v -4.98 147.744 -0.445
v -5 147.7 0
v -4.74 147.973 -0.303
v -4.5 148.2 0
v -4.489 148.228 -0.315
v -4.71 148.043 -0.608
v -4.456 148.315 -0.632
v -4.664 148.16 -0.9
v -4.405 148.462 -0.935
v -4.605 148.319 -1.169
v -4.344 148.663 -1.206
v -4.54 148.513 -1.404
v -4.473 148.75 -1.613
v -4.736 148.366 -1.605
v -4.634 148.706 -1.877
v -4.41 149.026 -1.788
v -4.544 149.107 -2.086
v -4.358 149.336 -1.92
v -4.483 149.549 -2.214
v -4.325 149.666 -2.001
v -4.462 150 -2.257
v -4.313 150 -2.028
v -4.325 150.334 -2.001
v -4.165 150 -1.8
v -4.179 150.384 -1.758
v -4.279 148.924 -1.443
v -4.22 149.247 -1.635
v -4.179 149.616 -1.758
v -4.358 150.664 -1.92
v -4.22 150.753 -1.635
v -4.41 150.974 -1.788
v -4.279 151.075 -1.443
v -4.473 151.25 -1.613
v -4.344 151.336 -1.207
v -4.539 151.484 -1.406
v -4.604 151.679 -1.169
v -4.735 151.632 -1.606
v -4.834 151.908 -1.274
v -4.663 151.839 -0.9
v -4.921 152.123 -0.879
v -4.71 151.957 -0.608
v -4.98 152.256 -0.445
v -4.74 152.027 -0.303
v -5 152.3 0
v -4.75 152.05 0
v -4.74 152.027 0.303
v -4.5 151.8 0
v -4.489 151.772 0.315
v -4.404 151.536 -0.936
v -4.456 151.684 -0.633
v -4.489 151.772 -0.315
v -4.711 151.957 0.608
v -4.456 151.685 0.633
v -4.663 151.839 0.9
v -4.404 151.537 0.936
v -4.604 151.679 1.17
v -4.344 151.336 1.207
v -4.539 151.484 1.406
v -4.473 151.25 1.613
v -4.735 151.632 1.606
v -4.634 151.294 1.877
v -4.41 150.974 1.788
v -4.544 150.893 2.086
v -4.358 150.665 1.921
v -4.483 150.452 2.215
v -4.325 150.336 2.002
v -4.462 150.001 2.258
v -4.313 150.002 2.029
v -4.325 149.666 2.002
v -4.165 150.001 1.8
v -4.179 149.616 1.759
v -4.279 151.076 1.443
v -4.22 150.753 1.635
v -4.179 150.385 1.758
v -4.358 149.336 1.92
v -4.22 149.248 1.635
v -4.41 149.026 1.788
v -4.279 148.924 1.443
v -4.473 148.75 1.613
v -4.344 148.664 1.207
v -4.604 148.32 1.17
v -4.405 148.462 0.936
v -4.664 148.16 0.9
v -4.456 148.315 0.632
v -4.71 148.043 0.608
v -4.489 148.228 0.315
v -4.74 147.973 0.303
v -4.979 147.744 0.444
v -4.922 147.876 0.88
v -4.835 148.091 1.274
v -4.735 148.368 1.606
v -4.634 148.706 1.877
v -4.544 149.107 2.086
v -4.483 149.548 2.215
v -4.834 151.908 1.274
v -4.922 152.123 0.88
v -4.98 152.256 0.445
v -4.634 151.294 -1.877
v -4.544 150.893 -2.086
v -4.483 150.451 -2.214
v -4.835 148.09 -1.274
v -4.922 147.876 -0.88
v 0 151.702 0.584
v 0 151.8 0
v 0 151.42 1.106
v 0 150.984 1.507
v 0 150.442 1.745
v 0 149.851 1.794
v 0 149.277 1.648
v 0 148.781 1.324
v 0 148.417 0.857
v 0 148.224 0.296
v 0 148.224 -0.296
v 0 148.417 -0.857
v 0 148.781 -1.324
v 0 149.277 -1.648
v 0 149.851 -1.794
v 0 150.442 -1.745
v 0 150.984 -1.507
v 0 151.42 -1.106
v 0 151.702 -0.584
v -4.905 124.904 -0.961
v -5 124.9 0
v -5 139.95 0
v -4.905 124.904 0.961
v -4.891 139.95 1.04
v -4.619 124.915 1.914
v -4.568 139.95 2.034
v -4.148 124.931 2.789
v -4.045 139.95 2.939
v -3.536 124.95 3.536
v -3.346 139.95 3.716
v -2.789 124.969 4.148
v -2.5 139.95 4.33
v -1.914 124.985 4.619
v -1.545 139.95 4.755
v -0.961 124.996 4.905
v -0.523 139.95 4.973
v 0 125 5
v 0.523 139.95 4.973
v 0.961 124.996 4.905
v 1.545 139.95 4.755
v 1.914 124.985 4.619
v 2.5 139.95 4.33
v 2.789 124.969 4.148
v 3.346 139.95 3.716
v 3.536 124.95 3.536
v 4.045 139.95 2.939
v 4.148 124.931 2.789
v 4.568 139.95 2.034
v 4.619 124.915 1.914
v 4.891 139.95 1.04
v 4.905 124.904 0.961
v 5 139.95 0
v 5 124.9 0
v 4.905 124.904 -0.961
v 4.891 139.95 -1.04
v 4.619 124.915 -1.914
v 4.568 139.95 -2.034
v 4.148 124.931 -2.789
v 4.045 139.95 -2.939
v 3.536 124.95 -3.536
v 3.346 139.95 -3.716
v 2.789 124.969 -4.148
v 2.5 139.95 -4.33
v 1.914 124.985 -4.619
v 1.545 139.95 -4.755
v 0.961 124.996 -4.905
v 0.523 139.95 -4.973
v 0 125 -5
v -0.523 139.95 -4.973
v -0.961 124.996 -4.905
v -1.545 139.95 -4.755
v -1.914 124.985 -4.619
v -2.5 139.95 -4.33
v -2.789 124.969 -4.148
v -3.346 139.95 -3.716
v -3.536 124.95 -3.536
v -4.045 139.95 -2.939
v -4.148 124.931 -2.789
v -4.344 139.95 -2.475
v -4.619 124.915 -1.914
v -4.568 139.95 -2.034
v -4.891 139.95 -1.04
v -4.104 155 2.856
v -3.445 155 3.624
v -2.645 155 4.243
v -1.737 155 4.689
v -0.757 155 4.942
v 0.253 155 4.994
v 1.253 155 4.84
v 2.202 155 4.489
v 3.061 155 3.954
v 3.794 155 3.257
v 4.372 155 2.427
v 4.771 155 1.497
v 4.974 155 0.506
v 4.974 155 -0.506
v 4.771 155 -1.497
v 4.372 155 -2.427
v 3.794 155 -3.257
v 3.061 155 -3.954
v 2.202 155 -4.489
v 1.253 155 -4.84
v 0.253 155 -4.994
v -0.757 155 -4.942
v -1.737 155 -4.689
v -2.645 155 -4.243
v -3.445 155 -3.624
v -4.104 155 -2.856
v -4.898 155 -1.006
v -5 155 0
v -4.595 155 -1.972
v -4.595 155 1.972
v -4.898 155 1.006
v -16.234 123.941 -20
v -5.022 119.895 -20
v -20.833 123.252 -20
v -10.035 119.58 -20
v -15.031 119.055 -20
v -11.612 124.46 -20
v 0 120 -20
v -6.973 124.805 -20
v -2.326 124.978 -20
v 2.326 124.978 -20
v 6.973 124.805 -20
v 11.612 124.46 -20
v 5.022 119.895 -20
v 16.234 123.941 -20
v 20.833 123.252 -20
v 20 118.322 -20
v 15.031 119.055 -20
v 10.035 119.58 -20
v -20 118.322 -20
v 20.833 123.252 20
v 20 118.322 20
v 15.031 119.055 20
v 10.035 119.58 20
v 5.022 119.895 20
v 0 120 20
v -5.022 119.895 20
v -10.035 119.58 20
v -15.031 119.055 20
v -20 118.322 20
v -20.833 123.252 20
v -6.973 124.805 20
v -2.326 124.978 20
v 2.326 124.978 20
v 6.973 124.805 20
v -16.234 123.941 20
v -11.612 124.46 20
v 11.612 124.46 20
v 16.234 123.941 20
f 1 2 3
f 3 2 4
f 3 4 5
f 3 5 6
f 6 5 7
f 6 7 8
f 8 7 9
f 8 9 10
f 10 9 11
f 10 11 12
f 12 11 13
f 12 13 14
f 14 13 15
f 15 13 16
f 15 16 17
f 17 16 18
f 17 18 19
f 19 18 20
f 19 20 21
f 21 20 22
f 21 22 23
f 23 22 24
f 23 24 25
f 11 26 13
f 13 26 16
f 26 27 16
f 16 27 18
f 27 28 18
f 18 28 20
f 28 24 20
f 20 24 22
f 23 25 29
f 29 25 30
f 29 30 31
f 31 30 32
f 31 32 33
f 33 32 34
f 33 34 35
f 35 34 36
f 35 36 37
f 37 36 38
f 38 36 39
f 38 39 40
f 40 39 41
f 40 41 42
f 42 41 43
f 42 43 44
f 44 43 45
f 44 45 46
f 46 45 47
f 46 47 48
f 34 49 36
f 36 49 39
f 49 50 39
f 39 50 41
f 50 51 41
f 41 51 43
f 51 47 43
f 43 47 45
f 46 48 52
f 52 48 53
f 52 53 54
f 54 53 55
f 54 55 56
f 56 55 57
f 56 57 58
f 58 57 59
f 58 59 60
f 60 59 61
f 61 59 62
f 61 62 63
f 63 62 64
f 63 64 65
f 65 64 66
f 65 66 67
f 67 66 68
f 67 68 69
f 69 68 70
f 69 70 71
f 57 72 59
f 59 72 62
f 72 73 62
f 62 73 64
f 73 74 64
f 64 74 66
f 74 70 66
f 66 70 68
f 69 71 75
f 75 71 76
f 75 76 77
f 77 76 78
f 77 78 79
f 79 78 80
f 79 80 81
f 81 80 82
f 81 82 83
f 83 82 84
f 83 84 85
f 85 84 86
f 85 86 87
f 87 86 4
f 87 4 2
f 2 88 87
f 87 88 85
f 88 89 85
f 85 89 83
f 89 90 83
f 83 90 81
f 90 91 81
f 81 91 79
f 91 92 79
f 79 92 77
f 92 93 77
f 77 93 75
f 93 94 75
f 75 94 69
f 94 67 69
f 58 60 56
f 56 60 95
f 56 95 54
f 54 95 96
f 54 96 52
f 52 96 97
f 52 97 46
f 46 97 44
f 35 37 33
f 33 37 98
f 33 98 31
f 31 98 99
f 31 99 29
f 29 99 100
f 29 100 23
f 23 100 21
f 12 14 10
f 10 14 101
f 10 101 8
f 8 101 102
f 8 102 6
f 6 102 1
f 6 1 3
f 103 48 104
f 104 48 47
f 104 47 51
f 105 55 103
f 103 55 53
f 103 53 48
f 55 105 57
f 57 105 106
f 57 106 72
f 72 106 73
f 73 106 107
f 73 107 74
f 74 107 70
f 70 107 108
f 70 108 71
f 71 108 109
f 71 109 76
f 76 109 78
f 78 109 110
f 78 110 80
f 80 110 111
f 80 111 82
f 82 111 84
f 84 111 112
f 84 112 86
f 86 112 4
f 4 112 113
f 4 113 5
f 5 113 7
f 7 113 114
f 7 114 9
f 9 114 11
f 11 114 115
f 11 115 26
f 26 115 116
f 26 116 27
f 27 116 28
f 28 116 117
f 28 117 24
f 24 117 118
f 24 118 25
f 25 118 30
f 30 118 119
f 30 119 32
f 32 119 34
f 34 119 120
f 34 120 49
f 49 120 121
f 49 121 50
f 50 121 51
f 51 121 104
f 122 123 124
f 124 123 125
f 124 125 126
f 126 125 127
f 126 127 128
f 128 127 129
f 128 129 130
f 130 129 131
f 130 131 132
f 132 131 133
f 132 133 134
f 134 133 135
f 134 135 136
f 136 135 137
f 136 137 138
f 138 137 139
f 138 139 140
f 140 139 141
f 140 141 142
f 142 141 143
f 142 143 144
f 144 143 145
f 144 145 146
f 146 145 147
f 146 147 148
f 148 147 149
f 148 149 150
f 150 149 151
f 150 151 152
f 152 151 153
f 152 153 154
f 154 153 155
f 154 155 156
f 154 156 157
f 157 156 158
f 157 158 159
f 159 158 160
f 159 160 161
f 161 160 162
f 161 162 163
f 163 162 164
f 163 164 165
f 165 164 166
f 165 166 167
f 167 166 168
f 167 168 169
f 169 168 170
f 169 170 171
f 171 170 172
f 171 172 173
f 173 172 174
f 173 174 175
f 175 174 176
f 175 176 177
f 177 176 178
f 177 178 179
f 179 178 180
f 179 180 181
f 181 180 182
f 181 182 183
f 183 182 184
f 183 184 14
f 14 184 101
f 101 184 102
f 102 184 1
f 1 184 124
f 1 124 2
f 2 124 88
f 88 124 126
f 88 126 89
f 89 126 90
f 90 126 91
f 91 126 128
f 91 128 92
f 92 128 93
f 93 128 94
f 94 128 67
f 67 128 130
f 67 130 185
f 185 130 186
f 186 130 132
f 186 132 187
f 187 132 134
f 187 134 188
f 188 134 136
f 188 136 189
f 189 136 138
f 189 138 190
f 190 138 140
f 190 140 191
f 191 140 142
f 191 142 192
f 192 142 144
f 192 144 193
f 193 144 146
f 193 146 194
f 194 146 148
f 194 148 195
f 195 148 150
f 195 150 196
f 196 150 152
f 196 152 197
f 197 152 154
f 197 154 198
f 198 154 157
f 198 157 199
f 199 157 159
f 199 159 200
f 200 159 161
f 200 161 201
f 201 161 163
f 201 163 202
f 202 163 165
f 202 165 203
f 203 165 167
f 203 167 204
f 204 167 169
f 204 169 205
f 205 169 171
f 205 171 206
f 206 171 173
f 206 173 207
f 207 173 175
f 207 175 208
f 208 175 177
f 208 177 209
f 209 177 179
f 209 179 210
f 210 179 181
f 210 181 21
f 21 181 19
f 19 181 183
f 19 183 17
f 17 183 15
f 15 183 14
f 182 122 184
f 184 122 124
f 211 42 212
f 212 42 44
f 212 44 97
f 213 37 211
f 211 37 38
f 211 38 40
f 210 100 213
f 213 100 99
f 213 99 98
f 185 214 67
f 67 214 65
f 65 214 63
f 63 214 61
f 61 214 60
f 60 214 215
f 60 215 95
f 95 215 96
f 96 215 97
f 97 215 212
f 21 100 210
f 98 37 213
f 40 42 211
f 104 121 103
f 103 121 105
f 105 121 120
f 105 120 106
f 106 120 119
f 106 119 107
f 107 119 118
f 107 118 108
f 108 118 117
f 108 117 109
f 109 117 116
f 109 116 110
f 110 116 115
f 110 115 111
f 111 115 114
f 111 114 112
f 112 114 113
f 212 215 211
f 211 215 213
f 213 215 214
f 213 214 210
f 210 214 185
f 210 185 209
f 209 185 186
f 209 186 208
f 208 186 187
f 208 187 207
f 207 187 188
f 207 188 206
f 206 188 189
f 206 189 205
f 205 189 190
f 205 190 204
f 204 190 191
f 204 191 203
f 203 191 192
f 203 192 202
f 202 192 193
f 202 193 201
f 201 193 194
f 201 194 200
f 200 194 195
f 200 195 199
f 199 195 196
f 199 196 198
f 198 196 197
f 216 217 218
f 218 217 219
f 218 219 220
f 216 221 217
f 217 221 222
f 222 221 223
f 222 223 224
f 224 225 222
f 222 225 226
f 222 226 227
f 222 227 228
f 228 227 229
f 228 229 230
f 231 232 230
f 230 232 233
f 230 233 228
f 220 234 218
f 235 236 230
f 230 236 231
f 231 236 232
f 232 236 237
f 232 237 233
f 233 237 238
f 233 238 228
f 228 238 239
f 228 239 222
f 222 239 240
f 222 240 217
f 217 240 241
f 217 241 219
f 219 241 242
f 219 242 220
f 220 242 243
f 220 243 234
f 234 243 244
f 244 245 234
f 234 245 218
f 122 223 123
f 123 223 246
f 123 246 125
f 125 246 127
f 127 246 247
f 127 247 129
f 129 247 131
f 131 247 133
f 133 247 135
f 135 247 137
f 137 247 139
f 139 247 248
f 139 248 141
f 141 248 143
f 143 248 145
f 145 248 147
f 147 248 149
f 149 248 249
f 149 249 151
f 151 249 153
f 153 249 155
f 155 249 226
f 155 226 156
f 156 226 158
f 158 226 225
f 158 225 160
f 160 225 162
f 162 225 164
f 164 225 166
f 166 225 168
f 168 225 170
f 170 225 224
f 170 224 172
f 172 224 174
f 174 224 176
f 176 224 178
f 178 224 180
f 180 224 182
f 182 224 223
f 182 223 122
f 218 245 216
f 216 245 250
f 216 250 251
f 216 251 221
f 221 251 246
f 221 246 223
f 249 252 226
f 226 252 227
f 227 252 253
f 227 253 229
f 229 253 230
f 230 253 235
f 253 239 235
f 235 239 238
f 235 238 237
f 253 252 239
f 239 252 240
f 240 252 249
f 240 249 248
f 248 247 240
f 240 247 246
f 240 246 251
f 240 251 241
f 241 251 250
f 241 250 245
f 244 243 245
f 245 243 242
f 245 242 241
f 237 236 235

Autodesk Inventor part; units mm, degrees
ref_plane "XY Plane" through (0, 0, 0) normal (0, 0, 1) x (1, 0, 0)
sketch "Sketch1" plane through (0, 0, 0) normal (0, 0, 1) x (1, 0, 0)
  arc A0 (20.8333, 123.2517) -> (-20.8333, 123.2517) centre (0, 0) ccw
  arc A1 (20, 118.3216) -> (-20, 118.3216) centre (0, 0) ccw
  line L0 (0, 0) -> (0, 143.8844) construction
  line L1 (-20, 118.3216) -> (-20.8333, 123.2517)
  line L2 (20, 118.3216) -> (20.8333, 123.2517)
  dimension "d0" = 250
  dimension "d1" = 5
  dimension "d2" = 40
extrude "Extrusion1" add sketch "Sketch1" along normal mid plane 40
ref_plane "Work Plane1" through (0, 120, 0) normal (0, 1, 0) x (-1, 0, 0)
sketch "Sketch2" plane through (0, 120, 0) normal (0, 1, 0) x (-1, 0, 0)
  circle A0 centre (0, 0) radius 5
  point P0 (0, 0)
  dimension "d5" = 10
extrude "Extrusion2" add sketch "Sketch2" along normal blind 35
ref_plane "Work Plane2" through (-5, 120, 0) normal (1, 0, 0) x (0, 1, 0)
sketch "Sketch3" plane through (-5, 120, 0) normal (1, 0, 0) x (0, 1, 0)
  circle A0 centre (30, 0) radius 1.8
  line L0 (35, -5) -> (35, 5) projected
  line L1 (-151, 0) -> (66, 0) projected
  point P0 (-120, 0)
  dimension "d8" = 3.6
  dimension "d9" = 5
extrude "Extrusion3" cut sketch "Sketch3" along normal blind 5
chamfer "Chamfer1" distance 0.5 angle 45 2 edges at (-4.6648, 149.9993, -1.8) (-4.6648, 150.0007, 1.8)
properties part number "shiftt_fixed_plate2"
